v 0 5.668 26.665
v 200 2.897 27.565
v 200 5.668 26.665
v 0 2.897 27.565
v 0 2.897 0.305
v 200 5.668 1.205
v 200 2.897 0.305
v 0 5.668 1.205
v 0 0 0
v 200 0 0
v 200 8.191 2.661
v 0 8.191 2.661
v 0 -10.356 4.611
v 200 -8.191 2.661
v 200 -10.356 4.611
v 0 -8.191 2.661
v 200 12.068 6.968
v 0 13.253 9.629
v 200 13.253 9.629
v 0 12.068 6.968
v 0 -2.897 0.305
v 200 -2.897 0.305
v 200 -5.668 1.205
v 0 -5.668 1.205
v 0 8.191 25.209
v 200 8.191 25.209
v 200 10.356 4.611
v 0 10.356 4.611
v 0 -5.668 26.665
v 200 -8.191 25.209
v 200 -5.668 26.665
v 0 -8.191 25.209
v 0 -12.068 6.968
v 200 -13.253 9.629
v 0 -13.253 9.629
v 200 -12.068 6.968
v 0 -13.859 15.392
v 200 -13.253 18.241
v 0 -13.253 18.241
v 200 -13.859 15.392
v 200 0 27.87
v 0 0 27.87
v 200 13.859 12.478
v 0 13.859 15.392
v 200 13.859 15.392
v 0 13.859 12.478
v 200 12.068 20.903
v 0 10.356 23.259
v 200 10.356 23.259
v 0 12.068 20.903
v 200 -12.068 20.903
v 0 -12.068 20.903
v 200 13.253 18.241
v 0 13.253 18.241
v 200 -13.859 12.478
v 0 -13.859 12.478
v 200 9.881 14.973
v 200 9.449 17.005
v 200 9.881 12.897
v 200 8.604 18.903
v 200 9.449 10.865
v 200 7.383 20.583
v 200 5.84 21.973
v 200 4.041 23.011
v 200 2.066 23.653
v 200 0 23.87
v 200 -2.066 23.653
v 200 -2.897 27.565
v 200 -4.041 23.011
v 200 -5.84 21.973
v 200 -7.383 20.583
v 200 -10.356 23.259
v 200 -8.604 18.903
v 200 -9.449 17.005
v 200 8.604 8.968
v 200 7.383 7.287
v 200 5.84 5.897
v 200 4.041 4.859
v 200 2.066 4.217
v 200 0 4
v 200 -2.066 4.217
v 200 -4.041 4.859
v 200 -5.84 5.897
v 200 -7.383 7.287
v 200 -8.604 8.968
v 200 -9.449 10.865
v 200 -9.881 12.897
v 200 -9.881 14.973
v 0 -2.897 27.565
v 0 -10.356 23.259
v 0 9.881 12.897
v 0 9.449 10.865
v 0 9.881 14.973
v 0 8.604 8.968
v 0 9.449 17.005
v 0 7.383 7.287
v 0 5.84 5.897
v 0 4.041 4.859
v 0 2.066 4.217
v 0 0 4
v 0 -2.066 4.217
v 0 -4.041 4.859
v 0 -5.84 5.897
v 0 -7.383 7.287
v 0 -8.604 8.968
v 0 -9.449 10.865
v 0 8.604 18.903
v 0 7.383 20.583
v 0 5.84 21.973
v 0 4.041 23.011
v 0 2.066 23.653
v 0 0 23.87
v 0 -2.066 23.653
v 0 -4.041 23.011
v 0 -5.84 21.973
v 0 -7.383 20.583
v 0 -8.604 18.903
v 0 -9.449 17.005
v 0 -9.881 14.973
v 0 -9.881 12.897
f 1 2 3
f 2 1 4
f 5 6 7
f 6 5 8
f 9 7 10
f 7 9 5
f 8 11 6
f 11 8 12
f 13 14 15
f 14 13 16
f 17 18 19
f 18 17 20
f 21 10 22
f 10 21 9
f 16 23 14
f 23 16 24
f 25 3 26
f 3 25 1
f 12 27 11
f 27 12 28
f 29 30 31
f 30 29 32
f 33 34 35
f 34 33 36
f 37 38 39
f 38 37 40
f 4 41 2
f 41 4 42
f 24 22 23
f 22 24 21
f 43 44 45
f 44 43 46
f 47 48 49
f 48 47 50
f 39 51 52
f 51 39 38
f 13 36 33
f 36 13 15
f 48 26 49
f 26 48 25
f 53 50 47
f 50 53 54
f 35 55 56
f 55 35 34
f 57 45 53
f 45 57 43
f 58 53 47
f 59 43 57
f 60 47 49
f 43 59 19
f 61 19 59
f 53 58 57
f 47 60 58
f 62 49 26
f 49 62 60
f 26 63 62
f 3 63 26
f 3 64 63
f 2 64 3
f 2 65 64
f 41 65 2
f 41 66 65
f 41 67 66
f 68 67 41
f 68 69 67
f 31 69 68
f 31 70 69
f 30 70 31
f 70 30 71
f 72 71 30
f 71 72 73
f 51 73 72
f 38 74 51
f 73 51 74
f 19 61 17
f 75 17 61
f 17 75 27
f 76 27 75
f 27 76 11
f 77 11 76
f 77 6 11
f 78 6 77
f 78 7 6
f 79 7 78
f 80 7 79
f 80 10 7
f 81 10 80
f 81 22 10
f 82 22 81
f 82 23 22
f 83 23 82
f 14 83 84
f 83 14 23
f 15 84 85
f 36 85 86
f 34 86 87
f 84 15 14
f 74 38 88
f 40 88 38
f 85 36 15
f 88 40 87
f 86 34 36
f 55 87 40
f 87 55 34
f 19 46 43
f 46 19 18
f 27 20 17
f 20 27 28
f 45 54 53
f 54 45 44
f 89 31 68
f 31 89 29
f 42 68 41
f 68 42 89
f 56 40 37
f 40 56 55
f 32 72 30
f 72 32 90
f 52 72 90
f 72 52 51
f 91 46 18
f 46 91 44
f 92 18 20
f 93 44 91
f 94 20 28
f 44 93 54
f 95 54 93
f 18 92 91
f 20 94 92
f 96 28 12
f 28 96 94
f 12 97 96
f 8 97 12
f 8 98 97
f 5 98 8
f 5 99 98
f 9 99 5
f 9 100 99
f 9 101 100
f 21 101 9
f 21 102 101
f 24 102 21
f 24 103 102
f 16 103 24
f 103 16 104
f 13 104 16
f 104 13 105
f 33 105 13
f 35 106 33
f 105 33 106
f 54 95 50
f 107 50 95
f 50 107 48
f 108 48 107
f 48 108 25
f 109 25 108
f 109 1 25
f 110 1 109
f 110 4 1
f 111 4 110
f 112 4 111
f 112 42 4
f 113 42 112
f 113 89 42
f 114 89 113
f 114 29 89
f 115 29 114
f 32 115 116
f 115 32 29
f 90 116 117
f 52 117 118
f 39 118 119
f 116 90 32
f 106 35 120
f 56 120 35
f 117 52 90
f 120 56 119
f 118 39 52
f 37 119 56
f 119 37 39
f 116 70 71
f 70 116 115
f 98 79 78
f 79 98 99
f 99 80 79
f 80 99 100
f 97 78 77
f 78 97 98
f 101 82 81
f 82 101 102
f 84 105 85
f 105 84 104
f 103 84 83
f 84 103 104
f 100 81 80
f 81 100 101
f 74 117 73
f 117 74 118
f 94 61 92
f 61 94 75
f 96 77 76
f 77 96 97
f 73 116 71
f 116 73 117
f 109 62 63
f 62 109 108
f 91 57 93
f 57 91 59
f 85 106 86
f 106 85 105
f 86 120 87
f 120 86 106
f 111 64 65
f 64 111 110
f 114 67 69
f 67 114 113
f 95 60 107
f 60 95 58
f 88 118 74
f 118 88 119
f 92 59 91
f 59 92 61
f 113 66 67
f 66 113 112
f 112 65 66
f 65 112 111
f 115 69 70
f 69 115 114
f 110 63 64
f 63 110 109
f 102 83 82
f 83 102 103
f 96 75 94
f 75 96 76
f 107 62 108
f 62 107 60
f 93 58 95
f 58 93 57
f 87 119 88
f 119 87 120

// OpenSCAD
l = 200;
d = 27.87;
t = 4;

translate([0, 0, d/2])
rotate([0,90,0])
difference() {
  // Outer cylinder
  cylinder(d=d, h=l);
  
  // Inner cylinder
  cylinder(d=d-2*t, h=l); 
}
